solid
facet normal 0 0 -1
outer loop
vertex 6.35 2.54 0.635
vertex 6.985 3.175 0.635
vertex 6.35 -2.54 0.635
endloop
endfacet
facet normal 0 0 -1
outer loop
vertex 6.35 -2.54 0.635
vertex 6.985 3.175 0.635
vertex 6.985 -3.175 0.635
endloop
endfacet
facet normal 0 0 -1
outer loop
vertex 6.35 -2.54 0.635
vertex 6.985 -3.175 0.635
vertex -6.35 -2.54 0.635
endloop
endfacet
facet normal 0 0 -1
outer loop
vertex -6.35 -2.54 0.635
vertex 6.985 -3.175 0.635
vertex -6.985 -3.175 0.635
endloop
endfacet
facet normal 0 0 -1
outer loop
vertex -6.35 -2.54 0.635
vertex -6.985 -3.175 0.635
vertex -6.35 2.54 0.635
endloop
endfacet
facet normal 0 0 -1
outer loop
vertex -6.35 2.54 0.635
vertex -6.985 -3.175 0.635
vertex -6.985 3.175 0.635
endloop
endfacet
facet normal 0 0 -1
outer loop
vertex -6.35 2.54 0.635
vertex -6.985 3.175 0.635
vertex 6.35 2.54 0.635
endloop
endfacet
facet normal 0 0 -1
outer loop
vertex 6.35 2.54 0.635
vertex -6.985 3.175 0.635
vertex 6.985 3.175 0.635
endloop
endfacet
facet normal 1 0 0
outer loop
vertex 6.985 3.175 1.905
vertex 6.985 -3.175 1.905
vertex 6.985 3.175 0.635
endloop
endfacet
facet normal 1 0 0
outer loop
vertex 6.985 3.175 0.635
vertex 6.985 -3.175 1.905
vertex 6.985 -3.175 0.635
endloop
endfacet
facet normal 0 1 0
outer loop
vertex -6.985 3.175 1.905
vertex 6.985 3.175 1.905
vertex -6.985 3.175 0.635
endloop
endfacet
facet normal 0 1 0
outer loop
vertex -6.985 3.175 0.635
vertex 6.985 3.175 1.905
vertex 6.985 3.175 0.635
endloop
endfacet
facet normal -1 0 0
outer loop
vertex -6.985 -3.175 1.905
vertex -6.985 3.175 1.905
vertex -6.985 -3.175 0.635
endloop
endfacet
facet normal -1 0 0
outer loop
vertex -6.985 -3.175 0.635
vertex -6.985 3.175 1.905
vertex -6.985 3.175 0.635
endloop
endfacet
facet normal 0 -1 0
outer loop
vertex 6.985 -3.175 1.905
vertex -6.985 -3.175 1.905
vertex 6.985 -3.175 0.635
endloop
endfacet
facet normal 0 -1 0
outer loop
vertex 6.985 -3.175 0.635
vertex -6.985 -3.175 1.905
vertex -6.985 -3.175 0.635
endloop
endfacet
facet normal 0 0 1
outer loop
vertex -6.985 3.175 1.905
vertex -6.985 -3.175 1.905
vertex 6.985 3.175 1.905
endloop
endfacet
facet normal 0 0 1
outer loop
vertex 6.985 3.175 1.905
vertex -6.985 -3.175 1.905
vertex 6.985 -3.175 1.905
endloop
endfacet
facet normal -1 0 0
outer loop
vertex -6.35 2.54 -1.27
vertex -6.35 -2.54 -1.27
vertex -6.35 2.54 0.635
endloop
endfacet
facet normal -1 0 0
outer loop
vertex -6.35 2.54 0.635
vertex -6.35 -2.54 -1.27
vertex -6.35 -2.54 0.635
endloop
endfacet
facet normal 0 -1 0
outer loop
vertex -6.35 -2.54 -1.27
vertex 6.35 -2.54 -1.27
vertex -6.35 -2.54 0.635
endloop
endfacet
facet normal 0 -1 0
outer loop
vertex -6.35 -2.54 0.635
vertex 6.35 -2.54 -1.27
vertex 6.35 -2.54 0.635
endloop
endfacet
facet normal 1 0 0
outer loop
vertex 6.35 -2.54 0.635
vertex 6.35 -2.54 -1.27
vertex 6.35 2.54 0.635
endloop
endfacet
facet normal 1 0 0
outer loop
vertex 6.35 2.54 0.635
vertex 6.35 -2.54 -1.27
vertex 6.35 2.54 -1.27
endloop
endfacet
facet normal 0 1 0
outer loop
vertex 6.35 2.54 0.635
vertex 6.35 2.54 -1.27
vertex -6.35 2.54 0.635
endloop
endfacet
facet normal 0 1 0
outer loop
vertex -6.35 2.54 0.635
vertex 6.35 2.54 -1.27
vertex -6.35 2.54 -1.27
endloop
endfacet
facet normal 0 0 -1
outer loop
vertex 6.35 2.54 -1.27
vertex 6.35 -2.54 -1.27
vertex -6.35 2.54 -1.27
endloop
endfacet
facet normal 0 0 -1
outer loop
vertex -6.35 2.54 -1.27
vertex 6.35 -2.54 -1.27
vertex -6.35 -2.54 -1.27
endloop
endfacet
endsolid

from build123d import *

# Parameters (mm, degrees)
SKETCH1_W           = 12.7
SKETCH1_H           = 5.08
BOSS_EXTRUDE1_DEPTH = 1.27
SKETCH2_W           = 13.97
SKETCH2_H           = 6.35
BOSS_EXTRUDE2_DEPTH = 0.635


with BuildPart() as part:
    # Sketch1 → Boss-Extrude1 (new, symmetric)
    with BuildSketch(Plane.XY):
        Rectangle(SKETCH1_W, SKETCH1_H)
    extrude(amount=BOSS_EXTRUDE1_DEPTH, both=True)

    # Sketch2 → Boss-Extrude2 (add, symmetric)
    with BuildSketch(Plane.XY.offset(1.27)):
        Rectangle(SKETCH2_W, SKETCH2_H)
    extrude(amount=BOSS_EXTRUDE2_DEPTH, both=True)


solid = part.part
